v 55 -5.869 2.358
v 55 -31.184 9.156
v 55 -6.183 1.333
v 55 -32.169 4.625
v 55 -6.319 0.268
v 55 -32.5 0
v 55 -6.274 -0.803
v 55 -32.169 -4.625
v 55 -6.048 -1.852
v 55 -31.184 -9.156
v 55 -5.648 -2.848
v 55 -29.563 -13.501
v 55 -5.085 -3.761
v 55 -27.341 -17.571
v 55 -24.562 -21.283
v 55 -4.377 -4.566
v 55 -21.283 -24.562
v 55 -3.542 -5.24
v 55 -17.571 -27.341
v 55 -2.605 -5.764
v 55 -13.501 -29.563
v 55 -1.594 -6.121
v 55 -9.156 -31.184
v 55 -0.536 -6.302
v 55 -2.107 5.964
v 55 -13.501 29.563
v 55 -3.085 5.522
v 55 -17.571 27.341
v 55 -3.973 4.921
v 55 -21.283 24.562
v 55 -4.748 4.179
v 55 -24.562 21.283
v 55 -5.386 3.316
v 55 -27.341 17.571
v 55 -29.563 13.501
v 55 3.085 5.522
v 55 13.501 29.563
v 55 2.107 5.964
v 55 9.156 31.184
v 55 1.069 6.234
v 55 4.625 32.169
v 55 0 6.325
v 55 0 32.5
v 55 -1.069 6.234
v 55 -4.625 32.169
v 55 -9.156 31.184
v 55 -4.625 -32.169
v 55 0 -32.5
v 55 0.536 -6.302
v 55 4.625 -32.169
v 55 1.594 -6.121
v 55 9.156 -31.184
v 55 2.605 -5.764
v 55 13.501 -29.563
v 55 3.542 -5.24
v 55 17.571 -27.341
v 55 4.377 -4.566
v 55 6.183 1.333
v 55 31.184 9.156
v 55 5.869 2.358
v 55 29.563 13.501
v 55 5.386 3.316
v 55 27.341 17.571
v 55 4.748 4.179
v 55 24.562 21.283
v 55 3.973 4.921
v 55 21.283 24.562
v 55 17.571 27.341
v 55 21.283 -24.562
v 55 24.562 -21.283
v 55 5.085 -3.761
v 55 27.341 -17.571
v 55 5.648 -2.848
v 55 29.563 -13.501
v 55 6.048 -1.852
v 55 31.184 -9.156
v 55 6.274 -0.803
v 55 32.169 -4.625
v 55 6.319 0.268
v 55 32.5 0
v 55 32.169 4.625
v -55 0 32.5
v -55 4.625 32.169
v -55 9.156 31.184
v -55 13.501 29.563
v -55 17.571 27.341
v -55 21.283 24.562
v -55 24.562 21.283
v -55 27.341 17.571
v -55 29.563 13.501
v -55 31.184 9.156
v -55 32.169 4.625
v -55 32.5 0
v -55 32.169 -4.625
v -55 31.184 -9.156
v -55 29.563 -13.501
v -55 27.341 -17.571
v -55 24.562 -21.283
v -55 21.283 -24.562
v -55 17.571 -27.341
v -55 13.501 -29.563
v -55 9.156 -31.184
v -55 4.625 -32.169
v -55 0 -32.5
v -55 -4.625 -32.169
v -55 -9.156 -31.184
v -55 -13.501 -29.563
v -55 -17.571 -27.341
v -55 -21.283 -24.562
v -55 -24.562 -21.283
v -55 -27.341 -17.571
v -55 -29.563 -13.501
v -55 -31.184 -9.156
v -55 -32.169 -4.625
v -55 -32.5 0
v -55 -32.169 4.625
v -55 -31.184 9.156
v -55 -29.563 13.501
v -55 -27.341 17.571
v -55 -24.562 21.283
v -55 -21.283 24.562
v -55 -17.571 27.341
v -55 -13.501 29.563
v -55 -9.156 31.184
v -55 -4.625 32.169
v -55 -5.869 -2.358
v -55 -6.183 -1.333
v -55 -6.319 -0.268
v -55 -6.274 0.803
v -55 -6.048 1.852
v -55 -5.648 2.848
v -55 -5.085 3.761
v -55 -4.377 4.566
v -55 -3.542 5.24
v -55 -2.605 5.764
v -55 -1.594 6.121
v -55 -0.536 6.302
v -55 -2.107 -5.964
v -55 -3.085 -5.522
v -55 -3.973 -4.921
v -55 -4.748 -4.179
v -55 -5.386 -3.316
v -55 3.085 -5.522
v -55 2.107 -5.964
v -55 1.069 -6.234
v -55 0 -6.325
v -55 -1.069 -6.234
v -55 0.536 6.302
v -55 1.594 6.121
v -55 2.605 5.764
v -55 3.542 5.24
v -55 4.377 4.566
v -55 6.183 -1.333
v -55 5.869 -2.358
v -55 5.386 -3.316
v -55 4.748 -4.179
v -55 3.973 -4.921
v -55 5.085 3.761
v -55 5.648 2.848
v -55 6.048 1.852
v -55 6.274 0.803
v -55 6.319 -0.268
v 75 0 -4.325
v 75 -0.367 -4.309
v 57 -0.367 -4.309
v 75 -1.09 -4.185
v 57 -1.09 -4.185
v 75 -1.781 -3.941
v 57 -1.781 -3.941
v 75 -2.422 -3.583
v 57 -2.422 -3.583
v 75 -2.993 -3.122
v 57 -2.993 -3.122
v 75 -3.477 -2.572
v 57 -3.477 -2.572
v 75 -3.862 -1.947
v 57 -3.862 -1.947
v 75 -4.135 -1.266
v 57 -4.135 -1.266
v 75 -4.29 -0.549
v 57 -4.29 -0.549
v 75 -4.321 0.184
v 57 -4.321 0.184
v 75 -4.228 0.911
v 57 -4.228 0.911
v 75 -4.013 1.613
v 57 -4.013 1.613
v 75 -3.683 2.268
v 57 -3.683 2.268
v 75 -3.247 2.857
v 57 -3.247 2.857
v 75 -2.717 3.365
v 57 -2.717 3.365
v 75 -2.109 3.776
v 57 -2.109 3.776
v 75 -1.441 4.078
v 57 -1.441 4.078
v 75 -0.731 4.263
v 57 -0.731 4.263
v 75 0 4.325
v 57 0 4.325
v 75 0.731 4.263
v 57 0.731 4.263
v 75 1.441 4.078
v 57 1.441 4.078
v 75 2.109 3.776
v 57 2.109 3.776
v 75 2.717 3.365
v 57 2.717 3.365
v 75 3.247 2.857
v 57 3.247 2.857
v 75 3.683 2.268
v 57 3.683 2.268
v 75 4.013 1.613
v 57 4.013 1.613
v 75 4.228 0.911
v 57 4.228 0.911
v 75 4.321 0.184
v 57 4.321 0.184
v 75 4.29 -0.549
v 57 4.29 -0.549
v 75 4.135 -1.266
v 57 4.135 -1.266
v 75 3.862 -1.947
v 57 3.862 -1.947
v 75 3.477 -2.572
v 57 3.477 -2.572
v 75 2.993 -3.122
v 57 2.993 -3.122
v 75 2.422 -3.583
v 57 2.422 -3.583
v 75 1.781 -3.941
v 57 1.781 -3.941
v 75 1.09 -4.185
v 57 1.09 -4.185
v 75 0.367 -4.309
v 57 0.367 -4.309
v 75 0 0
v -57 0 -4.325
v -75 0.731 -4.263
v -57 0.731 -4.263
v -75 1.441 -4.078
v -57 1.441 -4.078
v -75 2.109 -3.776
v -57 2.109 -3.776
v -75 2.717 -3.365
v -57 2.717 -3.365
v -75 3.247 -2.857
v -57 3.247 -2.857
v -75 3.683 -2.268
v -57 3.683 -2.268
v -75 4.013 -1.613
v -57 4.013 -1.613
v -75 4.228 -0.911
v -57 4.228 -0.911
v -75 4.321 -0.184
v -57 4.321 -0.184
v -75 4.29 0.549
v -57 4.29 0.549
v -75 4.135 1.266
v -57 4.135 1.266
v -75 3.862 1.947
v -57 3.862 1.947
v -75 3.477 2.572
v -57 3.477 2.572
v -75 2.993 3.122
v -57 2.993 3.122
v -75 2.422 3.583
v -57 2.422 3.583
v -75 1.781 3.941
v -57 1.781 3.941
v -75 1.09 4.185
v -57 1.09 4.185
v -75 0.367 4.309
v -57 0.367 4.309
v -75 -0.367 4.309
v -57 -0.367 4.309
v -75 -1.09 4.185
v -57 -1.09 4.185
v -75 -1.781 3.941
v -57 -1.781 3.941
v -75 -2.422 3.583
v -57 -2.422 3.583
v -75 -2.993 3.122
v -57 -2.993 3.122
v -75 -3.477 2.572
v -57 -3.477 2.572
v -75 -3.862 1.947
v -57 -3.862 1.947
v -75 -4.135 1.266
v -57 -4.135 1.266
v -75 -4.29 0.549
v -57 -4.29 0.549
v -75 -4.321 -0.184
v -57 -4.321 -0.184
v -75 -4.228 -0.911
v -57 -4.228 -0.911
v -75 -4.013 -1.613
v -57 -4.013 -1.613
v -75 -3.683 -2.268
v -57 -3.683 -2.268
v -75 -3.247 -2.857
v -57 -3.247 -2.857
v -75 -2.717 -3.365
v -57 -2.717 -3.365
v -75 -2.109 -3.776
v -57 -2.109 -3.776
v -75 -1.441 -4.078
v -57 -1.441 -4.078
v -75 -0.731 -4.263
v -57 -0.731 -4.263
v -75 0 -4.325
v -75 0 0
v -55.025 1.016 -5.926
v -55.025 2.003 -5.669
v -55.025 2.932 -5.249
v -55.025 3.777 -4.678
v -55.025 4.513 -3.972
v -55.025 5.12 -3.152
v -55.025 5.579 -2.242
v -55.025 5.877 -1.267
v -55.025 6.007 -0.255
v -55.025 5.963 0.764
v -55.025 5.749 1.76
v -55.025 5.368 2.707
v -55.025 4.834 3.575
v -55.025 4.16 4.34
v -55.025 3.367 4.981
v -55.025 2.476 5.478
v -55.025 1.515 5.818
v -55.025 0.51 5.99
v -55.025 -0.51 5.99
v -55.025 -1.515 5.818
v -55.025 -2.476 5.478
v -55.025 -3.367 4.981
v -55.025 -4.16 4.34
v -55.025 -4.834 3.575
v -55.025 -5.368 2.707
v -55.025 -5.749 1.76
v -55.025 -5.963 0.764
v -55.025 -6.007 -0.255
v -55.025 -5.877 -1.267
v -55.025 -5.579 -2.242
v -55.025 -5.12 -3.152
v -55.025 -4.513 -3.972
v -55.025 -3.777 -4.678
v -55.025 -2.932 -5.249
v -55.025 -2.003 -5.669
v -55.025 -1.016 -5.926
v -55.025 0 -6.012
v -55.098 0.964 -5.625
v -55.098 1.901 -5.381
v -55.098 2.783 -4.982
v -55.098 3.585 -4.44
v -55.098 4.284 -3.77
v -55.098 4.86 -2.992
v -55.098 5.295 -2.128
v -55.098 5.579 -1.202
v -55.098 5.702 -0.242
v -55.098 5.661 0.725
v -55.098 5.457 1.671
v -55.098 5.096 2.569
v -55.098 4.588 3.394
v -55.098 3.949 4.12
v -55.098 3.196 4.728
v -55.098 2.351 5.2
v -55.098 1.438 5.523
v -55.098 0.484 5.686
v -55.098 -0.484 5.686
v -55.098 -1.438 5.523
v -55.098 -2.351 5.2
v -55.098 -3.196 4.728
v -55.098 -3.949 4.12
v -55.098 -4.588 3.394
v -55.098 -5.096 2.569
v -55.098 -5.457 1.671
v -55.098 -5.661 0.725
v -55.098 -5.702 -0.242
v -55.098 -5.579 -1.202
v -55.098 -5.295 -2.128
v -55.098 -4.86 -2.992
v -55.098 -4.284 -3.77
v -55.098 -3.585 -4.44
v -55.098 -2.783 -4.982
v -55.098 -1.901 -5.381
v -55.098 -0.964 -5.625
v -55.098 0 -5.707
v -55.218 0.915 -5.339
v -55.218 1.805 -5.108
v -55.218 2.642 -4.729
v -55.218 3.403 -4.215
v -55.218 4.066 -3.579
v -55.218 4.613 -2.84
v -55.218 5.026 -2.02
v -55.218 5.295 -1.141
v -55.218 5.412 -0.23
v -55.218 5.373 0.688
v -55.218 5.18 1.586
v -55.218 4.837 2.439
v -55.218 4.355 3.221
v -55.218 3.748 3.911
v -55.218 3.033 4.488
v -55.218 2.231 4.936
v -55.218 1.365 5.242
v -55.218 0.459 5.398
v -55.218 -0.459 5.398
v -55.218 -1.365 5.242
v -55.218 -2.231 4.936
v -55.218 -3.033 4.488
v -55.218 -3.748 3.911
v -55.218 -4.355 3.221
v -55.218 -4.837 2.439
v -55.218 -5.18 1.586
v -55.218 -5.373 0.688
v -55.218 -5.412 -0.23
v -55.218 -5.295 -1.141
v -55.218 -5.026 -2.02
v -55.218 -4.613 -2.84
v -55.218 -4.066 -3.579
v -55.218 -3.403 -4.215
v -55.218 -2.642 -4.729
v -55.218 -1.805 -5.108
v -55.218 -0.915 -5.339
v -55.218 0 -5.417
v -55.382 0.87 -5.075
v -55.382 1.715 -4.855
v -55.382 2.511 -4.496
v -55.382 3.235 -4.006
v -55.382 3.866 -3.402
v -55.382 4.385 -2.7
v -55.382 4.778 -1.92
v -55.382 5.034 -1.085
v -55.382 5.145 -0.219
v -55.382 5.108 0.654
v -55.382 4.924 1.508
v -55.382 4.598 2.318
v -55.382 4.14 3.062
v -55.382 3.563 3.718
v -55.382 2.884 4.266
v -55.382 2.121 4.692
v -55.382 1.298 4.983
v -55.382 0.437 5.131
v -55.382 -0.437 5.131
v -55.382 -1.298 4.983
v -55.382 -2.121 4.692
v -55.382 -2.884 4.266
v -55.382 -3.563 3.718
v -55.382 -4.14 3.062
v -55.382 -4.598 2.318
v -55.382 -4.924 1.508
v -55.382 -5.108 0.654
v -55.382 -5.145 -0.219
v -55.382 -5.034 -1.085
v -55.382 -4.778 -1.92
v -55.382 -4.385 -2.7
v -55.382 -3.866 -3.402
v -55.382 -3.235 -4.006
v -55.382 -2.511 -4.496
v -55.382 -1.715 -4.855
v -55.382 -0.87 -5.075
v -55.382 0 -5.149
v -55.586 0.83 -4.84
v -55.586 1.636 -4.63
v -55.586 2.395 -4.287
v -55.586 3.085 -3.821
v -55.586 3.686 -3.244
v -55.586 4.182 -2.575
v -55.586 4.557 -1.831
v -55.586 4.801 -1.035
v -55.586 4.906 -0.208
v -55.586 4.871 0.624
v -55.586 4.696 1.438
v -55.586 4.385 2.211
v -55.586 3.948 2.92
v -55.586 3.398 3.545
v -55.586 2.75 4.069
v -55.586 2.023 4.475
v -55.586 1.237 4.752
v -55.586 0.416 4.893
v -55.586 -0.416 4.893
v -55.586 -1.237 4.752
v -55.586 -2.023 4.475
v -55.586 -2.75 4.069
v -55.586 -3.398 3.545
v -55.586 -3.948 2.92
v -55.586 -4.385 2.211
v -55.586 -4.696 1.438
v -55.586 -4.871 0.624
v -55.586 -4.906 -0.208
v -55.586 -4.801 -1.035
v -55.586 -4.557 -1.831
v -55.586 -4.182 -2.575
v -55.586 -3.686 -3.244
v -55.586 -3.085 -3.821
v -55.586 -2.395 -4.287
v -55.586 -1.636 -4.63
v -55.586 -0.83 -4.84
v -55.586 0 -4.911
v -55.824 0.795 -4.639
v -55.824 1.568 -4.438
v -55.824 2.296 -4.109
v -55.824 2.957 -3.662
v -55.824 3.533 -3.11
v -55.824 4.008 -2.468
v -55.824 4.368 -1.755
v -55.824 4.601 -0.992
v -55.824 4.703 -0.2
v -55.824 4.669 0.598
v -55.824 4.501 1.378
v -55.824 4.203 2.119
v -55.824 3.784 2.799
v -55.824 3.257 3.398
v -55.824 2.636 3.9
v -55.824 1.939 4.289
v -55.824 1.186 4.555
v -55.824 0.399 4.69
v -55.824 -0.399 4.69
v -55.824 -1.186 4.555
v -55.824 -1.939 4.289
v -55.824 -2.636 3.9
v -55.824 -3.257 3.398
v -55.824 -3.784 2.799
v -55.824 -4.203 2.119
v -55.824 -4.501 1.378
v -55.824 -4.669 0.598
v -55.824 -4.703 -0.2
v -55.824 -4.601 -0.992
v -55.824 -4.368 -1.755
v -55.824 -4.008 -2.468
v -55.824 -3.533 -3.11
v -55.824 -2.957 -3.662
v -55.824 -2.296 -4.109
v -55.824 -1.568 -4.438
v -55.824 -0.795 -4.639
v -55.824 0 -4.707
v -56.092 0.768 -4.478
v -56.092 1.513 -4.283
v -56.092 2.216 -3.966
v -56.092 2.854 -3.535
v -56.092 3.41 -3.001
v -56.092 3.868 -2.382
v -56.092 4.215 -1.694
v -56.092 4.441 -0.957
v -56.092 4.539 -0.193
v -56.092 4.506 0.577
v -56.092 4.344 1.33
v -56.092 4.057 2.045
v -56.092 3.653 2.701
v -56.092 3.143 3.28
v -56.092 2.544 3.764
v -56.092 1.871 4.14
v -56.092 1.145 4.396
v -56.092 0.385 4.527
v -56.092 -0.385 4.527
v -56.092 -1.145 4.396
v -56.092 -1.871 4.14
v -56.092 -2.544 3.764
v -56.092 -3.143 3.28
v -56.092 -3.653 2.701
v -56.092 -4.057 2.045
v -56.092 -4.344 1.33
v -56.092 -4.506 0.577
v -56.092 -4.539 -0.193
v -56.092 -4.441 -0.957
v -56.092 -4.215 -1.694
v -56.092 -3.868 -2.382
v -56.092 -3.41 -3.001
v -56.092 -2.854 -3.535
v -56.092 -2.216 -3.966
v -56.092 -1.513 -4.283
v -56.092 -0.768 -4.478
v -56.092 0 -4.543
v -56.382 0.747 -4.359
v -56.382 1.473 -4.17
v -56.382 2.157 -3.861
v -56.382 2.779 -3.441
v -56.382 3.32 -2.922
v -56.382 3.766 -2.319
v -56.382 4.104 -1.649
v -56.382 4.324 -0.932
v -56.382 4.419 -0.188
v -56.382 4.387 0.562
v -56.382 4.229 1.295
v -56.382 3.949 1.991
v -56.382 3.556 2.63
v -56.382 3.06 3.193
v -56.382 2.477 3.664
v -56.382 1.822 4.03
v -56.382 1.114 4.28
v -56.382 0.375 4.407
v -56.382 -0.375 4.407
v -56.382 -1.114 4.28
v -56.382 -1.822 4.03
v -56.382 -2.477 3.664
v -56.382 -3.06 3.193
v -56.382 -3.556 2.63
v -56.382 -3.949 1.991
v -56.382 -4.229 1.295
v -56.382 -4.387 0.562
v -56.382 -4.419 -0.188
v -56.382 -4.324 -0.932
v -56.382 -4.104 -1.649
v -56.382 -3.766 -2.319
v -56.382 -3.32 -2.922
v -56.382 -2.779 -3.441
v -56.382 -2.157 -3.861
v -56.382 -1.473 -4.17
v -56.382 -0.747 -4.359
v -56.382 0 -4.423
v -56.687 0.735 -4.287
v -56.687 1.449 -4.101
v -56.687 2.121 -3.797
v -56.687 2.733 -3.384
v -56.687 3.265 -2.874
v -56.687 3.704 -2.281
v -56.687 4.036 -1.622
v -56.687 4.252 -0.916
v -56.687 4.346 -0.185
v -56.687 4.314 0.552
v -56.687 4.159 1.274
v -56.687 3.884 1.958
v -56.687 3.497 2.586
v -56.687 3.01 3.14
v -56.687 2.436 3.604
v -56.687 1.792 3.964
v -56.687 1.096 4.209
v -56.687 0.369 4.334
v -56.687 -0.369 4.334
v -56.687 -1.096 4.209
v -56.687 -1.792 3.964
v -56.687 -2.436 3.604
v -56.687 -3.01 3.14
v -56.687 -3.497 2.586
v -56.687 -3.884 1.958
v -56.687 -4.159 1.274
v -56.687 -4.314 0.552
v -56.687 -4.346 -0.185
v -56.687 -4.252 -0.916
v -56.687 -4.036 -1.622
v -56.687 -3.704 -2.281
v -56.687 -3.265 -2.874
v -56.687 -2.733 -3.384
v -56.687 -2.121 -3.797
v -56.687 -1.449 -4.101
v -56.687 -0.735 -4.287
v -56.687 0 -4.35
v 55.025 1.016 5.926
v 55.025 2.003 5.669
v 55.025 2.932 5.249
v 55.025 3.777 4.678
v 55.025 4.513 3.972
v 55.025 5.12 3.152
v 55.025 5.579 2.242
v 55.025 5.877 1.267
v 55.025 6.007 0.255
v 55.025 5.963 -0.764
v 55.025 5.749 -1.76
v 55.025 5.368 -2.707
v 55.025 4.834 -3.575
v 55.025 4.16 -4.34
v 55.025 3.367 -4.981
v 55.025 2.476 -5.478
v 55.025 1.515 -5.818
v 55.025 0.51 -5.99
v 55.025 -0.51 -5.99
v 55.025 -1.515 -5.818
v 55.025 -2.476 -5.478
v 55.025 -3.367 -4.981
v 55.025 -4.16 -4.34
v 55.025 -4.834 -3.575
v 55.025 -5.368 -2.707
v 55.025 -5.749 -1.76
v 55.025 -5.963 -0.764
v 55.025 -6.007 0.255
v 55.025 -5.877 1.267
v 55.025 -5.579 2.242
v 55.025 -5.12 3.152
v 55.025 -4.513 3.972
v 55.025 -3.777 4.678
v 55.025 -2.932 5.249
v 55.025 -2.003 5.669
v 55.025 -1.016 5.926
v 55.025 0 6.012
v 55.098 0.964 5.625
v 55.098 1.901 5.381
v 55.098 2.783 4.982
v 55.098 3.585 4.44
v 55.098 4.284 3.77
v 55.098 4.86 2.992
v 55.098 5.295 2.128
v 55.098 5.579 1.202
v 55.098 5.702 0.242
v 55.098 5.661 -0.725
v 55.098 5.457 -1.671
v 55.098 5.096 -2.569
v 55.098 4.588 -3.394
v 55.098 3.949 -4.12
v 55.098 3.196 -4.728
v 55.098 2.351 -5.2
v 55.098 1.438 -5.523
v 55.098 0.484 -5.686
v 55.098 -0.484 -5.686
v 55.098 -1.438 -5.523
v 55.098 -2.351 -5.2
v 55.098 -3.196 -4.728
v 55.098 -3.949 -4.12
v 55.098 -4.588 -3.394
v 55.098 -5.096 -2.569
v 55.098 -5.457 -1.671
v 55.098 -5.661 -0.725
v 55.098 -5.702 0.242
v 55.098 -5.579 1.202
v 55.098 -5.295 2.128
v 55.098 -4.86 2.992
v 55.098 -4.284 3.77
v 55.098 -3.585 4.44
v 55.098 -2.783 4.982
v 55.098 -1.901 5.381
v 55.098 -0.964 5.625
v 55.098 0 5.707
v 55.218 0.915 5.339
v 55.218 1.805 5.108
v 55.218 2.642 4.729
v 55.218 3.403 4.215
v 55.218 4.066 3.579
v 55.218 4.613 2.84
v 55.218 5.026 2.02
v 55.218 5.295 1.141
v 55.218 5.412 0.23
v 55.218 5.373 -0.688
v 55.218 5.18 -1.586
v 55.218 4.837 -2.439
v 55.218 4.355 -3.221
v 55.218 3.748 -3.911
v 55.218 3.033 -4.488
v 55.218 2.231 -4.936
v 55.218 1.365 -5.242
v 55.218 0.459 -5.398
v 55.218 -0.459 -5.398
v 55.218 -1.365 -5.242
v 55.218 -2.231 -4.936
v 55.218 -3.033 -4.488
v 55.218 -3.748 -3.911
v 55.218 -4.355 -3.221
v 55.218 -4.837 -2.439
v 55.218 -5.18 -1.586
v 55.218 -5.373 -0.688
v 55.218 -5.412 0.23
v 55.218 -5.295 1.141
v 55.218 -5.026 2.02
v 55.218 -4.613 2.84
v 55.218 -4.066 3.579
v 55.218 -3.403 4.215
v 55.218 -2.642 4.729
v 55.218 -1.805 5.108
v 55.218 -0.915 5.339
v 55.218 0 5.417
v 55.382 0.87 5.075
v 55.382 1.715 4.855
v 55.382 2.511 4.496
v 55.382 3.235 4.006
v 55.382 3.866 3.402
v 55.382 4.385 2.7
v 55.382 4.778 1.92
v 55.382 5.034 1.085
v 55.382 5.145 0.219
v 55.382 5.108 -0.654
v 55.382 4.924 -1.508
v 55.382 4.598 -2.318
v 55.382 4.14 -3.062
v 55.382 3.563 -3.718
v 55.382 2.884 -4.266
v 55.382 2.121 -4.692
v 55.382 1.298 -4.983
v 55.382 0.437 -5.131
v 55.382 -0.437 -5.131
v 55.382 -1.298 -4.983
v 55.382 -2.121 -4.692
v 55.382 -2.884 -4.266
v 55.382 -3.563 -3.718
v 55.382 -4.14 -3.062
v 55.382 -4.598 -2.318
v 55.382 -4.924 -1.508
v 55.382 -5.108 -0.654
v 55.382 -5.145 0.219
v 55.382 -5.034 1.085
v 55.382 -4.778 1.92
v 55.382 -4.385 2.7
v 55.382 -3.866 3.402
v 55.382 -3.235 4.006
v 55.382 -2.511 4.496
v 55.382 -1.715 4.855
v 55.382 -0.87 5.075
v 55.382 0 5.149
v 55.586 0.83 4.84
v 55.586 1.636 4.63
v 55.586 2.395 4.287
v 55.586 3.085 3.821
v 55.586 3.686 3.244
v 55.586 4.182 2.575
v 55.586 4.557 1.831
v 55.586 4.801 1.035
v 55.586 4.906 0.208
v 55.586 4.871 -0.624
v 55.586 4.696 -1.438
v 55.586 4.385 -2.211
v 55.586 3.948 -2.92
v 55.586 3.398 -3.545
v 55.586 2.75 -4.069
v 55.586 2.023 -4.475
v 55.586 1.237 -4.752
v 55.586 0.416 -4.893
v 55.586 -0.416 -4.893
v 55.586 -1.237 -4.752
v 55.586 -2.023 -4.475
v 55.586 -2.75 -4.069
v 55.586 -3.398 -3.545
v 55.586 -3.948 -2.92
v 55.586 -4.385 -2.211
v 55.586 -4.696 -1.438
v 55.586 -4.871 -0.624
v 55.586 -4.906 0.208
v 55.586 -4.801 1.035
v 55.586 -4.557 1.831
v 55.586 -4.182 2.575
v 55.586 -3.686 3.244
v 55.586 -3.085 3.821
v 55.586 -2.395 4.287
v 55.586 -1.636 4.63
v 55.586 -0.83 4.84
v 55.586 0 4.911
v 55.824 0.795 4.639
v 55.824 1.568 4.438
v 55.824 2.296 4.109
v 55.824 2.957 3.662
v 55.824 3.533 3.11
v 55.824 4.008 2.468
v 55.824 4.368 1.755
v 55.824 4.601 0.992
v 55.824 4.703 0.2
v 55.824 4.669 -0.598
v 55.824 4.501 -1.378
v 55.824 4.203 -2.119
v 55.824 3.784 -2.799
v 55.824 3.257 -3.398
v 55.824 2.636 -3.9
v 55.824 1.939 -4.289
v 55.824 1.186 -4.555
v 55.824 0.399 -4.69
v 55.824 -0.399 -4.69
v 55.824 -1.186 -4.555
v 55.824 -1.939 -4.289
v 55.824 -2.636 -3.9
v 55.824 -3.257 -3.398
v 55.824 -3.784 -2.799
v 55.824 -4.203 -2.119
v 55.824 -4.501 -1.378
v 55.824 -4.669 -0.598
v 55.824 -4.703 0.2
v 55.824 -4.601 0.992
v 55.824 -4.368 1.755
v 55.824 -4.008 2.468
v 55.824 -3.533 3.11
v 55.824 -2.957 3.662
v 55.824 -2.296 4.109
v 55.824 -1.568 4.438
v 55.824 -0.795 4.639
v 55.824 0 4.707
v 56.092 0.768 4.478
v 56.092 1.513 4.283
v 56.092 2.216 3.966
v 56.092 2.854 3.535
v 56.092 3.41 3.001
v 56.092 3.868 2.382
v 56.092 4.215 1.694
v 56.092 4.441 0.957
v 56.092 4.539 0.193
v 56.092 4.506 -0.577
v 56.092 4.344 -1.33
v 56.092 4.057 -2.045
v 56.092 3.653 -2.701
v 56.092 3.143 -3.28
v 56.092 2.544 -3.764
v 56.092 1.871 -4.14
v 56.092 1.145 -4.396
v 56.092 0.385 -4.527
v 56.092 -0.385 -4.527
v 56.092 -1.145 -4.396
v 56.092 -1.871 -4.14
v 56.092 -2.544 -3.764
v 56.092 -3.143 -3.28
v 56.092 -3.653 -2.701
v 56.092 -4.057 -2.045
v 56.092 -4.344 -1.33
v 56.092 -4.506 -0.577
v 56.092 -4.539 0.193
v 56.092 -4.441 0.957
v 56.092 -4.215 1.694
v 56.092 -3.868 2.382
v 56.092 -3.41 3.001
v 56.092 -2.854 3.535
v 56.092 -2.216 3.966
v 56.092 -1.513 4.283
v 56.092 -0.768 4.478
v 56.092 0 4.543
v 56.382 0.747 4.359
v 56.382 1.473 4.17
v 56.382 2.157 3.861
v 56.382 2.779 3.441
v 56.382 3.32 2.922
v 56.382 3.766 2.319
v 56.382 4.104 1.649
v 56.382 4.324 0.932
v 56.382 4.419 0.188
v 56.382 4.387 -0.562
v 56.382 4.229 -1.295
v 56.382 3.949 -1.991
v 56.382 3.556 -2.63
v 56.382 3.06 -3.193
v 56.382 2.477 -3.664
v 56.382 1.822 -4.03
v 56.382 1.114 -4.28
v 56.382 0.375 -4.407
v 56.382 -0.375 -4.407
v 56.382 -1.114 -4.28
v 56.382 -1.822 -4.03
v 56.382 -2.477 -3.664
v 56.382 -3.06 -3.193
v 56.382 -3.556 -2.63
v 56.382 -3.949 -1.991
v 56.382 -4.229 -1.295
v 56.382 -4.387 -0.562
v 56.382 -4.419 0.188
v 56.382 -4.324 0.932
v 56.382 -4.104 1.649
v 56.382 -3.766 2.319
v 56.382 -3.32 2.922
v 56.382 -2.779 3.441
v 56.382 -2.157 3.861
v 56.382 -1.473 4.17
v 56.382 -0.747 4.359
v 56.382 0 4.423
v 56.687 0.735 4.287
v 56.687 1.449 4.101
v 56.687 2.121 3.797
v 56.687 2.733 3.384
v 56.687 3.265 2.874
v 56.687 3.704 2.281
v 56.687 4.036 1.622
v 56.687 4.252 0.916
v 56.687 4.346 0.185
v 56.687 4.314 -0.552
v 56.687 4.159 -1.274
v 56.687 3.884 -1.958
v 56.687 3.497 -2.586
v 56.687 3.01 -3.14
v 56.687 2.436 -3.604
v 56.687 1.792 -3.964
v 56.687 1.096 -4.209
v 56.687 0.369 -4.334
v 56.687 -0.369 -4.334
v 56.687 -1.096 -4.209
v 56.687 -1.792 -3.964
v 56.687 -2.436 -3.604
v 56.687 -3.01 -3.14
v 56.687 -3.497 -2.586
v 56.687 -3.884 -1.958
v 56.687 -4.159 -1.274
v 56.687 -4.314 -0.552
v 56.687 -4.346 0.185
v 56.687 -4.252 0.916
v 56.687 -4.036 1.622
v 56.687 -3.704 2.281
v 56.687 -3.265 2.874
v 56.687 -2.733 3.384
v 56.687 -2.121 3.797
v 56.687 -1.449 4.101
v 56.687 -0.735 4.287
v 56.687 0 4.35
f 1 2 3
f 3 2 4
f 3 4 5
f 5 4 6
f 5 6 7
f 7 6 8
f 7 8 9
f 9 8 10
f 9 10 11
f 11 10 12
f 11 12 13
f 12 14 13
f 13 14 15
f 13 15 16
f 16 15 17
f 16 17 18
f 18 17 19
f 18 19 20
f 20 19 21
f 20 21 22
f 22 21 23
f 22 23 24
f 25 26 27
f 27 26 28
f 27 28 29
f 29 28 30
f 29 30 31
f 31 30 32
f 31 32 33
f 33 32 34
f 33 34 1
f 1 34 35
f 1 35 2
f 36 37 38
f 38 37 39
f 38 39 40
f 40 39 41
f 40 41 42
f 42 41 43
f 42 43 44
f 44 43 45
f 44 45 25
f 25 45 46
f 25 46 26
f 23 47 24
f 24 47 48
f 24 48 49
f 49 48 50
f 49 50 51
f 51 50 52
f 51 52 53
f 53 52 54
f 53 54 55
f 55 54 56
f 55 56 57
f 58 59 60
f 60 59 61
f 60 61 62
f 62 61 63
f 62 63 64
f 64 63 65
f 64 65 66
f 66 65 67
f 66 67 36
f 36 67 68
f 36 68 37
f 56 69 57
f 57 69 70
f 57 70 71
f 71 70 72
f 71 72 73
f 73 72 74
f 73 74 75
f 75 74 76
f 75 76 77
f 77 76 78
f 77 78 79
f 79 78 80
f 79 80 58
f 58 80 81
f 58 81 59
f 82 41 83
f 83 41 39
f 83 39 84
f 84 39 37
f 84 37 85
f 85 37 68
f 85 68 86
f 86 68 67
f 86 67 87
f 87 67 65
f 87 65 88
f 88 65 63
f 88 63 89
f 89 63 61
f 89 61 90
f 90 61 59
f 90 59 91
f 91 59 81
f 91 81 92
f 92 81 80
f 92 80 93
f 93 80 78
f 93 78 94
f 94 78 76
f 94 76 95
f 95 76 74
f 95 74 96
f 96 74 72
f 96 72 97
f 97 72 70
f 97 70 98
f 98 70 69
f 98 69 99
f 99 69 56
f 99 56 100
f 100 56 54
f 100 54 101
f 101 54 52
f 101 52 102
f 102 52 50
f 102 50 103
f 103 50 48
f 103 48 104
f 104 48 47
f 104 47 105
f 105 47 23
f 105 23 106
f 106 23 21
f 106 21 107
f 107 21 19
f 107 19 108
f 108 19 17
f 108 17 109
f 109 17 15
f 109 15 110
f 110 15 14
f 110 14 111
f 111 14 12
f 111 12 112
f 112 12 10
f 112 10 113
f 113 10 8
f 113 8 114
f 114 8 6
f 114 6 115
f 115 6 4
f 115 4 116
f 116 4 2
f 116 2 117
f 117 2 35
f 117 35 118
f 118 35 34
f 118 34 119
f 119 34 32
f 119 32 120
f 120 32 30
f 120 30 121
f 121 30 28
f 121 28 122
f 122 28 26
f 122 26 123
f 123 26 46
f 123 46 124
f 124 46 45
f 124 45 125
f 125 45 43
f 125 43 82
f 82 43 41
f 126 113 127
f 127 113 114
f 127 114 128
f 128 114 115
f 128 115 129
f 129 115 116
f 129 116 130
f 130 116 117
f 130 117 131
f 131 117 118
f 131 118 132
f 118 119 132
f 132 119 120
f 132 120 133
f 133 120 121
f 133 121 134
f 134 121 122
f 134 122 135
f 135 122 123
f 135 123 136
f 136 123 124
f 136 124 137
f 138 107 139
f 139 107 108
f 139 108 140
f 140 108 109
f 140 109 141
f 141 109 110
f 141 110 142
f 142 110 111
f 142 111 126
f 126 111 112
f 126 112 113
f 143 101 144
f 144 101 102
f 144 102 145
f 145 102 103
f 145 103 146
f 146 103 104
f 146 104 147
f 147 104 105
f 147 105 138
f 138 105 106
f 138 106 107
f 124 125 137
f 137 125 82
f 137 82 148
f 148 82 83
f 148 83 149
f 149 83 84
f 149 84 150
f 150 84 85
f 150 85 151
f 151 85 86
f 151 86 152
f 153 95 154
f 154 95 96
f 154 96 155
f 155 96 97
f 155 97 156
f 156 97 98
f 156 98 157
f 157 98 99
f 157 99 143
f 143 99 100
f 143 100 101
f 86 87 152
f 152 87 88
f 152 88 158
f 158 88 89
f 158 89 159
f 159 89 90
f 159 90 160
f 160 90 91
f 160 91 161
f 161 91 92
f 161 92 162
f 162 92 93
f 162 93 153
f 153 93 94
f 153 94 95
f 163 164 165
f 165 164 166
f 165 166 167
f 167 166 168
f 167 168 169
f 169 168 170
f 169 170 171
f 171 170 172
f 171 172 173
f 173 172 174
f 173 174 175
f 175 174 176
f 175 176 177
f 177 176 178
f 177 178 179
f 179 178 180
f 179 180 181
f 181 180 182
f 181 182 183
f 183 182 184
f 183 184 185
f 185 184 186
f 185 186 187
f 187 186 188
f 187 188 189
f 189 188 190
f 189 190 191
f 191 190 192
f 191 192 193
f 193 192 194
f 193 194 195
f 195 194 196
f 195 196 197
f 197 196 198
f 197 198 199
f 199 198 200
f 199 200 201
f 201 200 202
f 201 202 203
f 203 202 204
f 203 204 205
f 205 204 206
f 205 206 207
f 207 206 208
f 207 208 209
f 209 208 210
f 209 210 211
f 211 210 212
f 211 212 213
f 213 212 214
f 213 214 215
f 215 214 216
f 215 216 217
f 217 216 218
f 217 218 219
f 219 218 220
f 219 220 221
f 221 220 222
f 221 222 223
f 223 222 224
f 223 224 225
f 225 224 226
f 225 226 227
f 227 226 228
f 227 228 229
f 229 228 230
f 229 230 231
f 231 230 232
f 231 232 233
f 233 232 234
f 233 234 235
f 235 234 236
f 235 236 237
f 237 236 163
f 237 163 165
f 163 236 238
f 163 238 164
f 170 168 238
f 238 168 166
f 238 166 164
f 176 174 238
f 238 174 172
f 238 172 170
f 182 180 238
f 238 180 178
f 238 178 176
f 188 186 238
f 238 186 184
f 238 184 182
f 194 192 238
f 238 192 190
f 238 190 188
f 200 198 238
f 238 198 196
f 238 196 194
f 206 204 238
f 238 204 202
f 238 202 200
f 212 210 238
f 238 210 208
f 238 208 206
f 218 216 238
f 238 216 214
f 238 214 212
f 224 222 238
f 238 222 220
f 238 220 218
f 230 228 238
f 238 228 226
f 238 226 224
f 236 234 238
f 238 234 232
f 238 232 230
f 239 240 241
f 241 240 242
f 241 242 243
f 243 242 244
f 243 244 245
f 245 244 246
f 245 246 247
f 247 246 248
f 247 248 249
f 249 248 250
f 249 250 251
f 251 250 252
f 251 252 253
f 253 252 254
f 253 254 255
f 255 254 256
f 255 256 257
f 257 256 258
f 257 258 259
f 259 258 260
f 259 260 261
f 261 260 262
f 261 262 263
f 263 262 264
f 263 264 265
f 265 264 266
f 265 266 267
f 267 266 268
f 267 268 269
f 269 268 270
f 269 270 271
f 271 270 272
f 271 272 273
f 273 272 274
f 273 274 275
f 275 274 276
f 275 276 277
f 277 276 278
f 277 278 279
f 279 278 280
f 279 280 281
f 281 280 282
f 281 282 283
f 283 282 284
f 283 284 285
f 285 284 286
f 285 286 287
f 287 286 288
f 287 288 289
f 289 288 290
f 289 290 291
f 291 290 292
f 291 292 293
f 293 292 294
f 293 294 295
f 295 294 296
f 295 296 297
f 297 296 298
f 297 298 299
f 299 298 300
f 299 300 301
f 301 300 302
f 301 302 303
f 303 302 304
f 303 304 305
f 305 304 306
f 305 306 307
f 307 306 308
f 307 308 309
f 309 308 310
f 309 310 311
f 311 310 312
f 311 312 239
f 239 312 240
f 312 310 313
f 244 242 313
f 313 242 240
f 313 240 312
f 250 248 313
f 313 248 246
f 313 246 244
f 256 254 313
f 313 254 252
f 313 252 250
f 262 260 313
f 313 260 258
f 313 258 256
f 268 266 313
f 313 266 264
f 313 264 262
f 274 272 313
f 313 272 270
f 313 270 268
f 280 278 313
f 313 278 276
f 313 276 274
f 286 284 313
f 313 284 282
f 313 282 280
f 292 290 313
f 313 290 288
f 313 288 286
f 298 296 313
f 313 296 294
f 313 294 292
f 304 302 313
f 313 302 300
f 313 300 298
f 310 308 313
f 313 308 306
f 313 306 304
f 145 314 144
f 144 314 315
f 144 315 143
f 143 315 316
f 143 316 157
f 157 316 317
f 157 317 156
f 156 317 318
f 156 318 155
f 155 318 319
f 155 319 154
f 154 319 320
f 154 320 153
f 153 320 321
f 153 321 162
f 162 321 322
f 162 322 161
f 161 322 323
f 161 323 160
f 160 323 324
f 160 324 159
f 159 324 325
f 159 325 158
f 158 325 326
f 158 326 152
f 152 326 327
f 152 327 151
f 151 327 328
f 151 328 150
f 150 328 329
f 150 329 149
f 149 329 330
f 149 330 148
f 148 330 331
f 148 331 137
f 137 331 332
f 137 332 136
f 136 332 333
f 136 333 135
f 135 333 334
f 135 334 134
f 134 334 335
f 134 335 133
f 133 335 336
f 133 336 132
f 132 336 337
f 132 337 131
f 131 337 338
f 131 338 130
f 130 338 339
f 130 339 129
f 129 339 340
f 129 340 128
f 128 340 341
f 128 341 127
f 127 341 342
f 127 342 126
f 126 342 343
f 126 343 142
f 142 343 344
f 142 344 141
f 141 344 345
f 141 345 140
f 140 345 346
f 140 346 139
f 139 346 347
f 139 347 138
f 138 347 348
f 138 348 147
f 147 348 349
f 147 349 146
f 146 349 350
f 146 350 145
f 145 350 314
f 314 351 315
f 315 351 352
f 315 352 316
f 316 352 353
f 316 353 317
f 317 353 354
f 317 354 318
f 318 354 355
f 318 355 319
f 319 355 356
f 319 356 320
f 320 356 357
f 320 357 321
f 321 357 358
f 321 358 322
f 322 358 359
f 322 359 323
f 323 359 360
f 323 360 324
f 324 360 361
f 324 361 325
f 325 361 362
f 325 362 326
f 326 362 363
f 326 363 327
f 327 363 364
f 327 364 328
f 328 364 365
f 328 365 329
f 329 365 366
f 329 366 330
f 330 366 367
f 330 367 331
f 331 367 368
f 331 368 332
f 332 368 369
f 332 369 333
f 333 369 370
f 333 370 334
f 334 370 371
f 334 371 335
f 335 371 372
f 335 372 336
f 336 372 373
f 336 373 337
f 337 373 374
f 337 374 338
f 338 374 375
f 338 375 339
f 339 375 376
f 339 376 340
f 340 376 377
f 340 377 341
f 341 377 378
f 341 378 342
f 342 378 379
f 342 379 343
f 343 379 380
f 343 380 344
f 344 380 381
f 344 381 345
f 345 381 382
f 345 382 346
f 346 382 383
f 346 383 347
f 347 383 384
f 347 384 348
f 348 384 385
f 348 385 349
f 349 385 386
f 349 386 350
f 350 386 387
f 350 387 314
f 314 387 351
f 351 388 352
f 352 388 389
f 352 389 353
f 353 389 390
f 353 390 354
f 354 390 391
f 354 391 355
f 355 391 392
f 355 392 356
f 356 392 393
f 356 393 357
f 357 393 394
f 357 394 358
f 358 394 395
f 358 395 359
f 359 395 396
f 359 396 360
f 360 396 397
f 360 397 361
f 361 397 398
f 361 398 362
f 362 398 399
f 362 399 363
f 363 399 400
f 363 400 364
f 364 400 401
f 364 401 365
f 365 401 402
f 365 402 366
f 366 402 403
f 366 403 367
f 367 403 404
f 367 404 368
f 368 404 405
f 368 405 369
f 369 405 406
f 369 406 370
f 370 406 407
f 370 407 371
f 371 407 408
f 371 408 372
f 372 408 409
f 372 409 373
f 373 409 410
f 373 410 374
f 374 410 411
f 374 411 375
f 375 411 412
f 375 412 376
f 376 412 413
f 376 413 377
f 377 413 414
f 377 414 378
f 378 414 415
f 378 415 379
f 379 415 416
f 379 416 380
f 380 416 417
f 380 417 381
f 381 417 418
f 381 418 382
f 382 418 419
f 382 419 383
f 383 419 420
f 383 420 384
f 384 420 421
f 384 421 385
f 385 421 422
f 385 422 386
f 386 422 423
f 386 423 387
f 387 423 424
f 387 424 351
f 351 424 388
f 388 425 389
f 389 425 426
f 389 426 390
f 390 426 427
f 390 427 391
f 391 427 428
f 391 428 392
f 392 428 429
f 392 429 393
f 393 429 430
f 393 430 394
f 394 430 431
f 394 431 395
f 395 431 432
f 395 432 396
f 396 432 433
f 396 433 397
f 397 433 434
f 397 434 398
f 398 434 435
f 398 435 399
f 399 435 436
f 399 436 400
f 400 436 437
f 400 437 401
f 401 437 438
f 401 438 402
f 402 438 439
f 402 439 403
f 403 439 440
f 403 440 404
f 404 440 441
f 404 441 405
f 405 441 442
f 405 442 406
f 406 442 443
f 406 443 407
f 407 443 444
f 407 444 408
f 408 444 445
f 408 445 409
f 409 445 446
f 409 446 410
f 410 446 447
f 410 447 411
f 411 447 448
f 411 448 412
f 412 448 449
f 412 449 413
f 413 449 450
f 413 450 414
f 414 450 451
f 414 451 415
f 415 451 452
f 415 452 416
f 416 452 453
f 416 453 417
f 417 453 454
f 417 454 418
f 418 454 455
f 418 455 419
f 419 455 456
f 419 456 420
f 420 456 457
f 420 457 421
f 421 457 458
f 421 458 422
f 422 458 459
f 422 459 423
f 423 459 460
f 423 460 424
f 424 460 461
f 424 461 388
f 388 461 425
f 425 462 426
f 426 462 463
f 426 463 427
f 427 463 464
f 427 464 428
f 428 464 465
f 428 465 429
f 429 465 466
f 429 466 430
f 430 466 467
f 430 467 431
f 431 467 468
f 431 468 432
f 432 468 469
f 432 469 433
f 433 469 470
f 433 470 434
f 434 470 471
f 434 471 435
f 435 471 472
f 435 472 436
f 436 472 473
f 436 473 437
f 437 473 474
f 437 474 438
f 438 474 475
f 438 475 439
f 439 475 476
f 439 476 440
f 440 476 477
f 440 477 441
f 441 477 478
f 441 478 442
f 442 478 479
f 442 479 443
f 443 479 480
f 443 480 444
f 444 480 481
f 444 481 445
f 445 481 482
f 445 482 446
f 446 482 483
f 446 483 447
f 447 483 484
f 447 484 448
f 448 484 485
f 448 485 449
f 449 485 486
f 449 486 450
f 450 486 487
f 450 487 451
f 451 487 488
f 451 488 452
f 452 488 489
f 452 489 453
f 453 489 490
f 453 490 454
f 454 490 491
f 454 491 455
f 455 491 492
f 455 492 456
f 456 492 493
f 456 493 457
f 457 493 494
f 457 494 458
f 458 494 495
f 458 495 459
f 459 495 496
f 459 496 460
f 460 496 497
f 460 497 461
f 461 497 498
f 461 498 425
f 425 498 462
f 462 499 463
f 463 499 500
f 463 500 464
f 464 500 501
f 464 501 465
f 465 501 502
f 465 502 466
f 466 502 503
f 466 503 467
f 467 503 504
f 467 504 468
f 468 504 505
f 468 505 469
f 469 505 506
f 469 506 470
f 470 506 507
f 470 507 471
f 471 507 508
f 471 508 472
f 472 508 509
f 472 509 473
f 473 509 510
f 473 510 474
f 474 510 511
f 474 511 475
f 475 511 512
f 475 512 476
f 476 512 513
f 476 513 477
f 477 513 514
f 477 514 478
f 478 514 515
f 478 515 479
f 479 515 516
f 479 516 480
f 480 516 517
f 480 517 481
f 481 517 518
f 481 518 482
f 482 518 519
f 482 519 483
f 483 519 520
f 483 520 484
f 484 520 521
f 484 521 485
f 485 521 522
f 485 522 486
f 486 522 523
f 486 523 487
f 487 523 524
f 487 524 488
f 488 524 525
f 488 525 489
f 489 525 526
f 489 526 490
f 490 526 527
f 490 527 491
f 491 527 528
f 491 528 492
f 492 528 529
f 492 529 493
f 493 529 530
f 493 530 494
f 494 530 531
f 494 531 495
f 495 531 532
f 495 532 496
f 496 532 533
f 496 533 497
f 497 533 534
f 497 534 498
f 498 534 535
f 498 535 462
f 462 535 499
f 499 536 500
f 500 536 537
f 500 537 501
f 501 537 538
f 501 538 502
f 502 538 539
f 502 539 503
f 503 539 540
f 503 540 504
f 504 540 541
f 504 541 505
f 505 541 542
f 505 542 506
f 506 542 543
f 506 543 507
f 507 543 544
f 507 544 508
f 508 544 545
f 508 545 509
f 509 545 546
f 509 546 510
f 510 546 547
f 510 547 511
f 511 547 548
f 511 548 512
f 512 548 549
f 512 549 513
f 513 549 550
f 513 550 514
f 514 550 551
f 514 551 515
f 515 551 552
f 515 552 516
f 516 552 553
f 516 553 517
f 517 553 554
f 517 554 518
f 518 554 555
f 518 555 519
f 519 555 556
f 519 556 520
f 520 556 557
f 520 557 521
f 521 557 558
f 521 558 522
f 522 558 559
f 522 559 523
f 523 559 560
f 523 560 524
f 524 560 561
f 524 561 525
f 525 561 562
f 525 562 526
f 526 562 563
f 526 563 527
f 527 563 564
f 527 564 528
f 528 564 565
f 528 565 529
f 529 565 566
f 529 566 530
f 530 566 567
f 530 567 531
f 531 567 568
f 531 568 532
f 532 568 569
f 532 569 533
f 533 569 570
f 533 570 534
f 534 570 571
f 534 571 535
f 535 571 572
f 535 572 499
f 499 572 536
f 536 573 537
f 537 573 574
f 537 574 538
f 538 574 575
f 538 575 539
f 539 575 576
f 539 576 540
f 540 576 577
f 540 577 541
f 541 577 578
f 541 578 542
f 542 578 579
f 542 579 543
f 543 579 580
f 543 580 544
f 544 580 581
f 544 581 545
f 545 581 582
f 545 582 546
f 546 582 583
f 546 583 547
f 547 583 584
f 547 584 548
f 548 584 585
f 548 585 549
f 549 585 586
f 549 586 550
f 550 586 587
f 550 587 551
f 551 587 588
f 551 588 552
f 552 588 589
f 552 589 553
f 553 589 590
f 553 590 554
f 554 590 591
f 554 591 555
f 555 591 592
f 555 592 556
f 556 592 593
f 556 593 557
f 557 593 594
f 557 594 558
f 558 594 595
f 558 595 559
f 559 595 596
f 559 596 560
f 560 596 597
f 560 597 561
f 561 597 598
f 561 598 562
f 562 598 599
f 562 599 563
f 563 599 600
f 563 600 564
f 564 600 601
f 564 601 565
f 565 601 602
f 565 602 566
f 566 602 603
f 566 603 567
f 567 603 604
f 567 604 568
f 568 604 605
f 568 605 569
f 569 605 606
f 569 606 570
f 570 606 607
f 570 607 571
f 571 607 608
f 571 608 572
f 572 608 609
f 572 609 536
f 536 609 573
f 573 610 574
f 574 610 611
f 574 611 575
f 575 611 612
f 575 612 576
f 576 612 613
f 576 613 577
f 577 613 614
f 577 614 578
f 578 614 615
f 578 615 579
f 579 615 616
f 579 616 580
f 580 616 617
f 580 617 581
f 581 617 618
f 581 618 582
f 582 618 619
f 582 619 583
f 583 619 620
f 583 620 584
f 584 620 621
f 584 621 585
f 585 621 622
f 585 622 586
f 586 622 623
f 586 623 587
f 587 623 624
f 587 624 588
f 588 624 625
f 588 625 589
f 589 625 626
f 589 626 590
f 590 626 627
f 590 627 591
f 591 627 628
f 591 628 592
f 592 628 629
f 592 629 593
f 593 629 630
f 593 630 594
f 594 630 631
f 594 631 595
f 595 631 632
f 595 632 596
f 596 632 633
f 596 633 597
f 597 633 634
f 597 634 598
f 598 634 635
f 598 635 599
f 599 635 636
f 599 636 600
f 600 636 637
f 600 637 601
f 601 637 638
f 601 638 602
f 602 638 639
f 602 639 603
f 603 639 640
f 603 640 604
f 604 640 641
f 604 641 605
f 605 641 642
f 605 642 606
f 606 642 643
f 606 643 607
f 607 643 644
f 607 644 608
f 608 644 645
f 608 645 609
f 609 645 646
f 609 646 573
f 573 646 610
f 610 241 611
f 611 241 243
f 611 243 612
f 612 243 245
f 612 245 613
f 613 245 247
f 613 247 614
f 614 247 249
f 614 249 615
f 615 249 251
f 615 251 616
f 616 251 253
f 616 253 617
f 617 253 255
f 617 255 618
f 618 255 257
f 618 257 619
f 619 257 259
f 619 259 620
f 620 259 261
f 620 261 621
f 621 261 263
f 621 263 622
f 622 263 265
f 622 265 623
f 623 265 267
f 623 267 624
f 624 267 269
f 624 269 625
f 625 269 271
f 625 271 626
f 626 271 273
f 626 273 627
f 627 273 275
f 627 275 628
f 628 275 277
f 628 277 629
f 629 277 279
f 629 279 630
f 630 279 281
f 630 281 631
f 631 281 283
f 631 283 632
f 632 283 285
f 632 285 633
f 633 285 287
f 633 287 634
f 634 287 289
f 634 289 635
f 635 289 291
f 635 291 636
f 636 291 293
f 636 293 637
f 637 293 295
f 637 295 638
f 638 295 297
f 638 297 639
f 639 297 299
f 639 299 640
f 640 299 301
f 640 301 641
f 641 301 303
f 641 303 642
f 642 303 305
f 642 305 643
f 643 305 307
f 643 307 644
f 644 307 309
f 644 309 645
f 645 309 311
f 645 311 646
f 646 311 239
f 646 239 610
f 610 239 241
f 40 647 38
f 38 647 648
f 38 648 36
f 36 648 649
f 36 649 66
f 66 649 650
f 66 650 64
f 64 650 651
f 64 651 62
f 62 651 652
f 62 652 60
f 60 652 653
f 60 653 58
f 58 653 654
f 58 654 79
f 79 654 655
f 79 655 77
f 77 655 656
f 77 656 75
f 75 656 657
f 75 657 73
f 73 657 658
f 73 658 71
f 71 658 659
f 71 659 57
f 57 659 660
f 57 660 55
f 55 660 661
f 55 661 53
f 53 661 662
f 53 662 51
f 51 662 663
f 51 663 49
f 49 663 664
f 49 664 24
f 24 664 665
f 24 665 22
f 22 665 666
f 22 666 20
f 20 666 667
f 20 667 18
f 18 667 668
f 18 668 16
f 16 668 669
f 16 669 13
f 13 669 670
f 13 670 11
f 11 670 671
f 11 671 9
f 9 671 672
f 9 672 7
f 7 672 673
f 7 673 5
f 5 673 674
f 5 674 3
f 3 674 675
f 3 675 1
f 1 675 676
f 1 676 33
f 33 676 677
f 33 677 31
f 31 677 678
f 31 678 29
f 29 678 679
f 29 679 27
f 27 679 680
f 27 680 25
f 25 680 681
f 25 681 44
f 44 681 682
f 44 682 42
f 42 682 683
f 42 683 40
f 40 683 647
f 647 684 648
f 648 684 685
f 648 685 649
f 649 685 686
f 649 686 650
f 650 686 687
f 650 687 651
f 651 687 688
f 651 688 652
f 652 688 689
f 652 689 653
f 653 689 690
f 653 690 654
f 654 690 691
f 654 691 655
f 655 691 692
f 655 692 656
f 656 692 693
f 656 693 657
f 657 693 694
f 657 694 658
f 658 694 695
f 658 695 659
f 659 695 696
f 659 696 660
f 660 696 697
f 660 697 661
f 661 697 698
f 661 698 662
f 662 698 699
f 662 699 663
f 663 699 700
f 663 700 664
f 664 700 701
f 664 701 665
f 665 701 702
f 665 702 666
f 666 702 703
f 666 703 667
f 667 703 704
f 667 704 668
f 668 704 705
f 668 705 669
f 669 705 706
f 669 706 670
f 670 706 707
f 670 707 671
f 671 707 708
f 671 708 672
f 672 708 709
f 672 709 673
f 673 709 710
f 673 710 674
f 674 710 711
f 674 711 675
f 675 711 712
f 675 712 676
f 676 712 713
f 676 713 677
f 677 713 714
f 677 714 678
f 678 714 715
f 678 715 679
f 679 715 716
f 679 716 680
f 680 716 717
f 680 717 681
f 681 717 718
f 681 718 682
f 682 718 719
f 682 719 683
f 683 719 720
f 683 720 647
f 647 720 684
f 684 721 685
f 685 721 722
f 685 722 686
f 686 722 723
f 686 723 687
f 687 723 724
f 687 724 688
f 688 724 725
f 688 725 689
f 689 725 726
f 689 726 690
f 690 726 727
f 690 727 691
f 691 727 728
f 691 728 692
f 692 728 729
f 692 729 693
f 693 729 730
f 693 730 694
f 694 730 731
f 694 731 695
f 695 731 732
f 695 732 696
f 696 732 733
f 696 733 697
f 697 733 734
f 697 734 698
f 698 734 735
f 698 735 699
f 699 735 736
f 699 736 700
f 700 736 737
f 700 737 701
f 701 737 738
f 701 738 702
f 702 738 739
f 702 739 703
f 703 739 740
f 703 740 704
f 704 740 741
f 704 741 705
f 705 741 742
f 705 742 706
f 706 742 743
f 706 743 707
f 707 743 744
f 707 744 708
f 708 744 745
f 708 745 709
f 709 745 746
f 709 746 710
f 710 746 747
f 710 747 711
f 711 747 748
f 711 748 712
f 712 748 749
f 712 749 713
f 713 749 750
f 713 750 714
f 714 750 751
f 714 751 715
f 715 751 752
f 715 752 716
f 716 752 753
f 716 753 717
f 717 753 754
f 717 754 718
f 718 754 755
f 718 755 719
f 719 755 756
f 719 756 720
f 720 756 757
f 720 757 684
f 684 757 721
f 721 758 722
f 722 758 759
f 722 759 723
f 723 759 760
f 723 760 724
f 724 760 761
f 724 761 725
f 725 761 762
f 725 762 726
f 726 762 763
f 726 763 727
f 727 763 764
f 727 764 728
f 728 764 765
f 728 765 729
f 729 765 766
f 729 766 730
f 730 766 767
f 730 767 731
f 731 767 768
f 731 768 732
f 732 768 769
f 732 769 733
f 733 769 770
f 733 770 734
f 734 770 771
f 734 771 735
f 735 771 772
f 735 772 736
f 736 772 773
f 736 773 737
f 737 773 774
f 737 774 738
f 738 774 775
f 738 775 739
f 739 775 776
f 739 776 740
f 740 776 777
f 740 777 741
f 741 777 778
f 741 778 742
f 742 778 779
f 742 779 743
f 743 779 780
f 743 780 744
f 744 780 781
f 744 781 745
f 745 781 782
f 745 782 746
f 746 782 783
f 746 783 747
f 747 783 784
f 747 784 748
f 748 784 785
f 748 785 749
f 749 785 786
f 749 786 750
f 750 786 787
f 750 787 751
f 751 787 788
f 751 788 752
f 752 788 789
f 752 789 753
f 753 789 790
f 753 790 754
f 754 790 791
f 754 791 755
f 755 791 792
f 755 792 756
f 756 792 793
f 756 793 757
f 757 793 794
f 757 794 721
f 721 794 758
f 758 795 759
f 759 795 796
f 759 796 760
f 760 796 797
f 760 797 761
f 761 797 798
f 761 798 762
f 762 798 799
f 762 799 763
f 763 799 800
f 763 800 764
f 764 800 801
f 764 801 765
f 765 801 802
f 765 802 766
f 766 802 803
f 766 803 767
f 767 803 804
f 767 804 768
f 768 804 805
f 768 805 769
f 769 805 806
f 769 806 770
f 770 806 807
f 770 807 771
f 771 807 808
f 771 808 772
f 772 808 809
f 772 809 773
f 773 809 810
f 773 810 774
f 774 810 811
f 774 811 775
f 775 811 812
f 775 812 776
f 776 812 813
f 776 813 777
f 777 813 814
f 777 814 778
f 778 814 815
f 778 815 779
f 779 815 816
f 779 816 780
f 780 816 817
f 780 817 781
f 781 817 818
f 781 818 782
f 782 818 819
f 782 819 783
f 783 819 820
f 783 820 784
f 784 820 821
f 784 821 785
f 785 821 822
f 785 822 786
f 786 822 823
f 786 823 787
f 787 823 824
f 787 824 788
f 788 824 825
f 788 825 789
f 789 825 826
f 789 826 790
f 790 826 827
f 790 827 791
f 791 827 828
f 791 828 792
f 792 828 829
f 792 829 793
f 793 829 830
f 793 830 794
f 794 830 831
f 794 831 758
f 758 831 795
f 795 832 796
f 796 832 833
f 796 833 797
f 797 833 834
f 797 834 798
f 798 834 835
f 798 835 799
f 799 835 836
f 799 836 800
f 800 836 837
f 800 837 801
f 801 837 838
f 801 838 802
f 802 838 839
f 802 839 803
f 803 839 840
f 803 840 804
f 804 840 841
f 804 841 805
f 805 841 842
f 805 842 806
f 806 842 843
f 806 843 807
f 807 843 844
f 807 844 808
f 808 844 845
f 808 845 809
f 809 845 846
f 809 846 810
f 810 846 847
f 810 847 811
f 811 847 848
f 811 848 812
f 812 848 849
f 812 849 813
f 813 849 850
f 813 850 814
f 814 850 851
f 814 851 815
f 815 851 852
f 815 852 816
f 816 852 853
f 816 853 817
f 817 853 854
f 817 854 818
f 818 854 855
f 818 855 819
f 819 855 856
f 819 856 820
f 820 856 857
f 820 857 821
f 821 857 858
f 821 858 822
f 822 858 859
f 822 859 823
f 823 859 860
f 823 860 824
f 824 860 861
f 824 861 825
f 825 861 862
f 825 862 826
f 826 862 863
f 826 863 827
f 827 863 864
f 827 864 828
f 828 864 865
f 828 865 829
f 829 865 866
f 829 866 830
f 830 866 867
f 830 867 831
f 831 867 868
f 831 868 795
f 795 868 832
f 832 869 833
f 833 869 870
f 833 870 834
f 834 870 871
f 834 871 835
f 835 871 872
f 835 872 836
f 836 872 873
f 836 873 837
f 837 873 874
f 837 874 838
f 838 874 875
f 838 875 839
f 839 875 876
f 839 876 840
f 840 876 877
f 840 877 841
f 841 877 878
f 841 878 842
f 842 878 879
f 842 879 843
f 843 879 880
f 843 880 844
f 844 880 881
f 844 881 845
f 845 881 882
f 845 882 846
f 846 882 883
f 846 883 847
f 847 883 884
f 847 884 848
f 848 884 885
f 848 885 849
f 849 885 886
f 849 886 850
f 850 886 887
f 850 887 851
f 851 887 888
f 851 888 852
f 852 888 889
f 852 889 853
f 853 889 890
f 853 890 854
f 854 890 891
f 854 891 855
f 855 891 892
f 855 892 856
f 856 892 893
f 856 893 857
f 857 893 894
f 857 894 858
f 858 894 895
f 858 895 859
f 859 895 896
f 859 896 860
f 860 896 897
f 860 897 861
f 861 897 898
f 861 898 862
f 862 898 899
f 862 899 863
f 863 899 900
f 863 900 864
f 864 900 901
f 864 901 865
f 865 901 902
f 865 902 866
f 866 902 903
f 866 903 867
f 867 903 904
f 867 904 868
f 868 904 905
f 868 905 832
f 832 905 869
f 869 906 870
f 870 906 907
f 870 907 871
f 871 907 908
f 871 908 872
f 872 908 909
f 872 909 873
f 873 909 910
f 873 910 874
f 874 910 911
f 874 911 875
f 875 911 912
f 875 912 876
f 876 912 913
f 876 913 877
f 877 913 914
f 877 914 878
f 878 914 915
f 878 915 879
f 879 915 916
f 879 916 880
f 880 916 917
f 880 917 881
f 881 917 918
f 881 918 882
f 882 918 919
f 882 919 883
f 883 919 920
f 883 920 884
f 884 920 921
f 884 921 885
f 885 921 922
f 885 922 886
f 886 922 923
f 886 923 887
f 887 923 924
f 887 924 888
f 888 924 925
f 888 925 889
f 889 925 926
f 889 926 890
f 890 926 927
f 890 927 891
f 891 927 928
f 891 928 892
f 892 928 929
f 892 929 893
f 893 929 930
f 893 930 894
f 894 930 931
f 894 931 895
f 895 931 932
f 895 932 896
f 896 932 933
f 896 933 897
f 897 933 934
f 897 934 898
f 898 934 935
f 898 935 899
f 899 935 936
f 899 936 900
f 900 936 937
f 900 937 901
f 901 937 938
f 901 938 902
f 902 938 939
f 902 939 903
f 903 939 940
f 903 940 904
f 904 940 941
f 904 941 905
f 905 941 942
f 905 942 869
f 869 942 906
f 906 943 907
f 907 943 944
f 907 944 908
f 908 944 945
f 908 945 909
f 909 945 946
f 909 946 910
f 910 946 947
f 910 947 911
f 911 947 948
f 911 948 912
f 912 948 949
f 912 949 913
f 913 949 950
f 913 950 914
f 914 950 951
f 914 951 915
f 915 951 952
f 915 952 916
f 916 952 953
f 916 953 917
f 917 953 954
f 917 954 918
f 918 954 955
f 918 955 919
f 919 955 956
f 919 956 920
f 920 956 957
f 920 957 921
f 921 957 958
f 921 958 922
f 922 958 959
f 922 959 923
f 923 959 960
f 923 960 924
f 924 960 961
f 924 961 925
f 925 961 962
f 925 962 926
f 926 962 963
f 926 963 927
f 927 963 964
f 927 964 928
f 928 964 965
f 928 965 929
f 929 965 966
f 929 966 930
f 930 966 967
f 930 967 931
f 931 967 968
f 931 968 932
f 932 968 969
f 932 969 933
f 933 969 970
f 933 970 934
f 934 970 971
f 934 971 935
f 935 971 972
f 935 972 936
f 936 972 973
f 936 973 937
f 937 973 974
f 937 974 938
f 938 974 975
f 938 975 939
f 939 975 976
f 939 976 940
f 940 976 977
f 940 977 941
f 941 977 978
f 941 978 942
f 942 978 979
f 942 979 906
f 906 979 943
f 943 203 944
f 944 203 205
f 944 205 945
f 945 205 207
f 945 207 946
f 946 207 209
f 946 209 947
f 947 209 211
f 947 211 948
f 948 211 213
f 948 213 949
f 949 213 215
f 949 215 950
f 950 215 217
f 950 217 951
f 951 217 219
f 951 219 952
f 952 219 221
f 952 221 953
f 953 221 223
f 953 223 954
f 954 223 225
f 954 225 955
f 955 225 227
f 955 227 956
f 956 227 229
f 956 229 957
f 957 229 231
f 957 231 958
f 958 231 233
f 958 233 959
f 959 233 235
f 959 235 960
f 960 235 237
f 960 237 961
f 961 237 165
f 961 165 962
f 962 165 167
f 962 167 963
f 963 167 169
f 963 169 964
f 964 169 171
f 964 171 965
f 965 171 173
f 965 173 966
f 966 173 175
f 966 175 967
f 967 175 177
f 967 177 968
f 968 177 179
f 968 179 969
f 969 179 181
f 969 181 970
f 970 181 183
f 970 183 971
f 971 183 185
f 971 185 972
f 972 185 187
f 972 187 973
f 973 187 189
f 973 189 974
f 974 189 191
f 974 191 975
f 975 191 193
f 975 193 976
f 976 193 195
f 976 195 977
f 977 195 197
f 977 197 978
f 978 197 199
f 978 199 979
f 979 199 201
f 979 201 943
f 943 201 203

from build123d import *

# Parameters (mm, degrees)
SKETCH_1_W      = 110
SKETCH_1_H      = 32.5
SKETCH_2_R      = 4.325
EXTRUDE_1_DEPTH = 20
FILLET_1_R      = 2


with BuildPart() as part:
    # 스케치1 → 회전1 (revolve)
    with BuildSketch(Plane(origin=(0, 0, 0), x_dir=(1, 0, 0), z_dir=(0, 1, 0))):
        with Locations((0, 16.25)):
            Rectangle(SKETCH_1_W, SKETCH_1_H)
    revolve(axis=Axis((-130.174262735, 0, 0), (1, 0, 0)))

    # 스케치2 → 보스-돌출1 (add)
    with BuildSketch(Plane(origin=(55, 0, 0), x_dir=(0, 0, -1), z_dir=(1, 0, 0))):
        Circle(SKETCH_2_R)
    extrude_1 = extrude(amount=EXTRUDE_1_DEPTH)

    # 대칭 복사1: 보스-돌출1 across plane
    add(extrude_1.mirror(Plane(origin=(0, 0, 0), x_dir=(0, 0, 1), z_dir=(1, 0, 0))))

    # 필렛1
    fillet_1_edges = [part.edges().sort_by_distance(p)[0] for p in [
        (-55, 0, 4.325),
        (55, 0, 4.325),
    ]]
    fillet(fillet_1_edges, radius=FILLET_1_R)


solid = part.part
